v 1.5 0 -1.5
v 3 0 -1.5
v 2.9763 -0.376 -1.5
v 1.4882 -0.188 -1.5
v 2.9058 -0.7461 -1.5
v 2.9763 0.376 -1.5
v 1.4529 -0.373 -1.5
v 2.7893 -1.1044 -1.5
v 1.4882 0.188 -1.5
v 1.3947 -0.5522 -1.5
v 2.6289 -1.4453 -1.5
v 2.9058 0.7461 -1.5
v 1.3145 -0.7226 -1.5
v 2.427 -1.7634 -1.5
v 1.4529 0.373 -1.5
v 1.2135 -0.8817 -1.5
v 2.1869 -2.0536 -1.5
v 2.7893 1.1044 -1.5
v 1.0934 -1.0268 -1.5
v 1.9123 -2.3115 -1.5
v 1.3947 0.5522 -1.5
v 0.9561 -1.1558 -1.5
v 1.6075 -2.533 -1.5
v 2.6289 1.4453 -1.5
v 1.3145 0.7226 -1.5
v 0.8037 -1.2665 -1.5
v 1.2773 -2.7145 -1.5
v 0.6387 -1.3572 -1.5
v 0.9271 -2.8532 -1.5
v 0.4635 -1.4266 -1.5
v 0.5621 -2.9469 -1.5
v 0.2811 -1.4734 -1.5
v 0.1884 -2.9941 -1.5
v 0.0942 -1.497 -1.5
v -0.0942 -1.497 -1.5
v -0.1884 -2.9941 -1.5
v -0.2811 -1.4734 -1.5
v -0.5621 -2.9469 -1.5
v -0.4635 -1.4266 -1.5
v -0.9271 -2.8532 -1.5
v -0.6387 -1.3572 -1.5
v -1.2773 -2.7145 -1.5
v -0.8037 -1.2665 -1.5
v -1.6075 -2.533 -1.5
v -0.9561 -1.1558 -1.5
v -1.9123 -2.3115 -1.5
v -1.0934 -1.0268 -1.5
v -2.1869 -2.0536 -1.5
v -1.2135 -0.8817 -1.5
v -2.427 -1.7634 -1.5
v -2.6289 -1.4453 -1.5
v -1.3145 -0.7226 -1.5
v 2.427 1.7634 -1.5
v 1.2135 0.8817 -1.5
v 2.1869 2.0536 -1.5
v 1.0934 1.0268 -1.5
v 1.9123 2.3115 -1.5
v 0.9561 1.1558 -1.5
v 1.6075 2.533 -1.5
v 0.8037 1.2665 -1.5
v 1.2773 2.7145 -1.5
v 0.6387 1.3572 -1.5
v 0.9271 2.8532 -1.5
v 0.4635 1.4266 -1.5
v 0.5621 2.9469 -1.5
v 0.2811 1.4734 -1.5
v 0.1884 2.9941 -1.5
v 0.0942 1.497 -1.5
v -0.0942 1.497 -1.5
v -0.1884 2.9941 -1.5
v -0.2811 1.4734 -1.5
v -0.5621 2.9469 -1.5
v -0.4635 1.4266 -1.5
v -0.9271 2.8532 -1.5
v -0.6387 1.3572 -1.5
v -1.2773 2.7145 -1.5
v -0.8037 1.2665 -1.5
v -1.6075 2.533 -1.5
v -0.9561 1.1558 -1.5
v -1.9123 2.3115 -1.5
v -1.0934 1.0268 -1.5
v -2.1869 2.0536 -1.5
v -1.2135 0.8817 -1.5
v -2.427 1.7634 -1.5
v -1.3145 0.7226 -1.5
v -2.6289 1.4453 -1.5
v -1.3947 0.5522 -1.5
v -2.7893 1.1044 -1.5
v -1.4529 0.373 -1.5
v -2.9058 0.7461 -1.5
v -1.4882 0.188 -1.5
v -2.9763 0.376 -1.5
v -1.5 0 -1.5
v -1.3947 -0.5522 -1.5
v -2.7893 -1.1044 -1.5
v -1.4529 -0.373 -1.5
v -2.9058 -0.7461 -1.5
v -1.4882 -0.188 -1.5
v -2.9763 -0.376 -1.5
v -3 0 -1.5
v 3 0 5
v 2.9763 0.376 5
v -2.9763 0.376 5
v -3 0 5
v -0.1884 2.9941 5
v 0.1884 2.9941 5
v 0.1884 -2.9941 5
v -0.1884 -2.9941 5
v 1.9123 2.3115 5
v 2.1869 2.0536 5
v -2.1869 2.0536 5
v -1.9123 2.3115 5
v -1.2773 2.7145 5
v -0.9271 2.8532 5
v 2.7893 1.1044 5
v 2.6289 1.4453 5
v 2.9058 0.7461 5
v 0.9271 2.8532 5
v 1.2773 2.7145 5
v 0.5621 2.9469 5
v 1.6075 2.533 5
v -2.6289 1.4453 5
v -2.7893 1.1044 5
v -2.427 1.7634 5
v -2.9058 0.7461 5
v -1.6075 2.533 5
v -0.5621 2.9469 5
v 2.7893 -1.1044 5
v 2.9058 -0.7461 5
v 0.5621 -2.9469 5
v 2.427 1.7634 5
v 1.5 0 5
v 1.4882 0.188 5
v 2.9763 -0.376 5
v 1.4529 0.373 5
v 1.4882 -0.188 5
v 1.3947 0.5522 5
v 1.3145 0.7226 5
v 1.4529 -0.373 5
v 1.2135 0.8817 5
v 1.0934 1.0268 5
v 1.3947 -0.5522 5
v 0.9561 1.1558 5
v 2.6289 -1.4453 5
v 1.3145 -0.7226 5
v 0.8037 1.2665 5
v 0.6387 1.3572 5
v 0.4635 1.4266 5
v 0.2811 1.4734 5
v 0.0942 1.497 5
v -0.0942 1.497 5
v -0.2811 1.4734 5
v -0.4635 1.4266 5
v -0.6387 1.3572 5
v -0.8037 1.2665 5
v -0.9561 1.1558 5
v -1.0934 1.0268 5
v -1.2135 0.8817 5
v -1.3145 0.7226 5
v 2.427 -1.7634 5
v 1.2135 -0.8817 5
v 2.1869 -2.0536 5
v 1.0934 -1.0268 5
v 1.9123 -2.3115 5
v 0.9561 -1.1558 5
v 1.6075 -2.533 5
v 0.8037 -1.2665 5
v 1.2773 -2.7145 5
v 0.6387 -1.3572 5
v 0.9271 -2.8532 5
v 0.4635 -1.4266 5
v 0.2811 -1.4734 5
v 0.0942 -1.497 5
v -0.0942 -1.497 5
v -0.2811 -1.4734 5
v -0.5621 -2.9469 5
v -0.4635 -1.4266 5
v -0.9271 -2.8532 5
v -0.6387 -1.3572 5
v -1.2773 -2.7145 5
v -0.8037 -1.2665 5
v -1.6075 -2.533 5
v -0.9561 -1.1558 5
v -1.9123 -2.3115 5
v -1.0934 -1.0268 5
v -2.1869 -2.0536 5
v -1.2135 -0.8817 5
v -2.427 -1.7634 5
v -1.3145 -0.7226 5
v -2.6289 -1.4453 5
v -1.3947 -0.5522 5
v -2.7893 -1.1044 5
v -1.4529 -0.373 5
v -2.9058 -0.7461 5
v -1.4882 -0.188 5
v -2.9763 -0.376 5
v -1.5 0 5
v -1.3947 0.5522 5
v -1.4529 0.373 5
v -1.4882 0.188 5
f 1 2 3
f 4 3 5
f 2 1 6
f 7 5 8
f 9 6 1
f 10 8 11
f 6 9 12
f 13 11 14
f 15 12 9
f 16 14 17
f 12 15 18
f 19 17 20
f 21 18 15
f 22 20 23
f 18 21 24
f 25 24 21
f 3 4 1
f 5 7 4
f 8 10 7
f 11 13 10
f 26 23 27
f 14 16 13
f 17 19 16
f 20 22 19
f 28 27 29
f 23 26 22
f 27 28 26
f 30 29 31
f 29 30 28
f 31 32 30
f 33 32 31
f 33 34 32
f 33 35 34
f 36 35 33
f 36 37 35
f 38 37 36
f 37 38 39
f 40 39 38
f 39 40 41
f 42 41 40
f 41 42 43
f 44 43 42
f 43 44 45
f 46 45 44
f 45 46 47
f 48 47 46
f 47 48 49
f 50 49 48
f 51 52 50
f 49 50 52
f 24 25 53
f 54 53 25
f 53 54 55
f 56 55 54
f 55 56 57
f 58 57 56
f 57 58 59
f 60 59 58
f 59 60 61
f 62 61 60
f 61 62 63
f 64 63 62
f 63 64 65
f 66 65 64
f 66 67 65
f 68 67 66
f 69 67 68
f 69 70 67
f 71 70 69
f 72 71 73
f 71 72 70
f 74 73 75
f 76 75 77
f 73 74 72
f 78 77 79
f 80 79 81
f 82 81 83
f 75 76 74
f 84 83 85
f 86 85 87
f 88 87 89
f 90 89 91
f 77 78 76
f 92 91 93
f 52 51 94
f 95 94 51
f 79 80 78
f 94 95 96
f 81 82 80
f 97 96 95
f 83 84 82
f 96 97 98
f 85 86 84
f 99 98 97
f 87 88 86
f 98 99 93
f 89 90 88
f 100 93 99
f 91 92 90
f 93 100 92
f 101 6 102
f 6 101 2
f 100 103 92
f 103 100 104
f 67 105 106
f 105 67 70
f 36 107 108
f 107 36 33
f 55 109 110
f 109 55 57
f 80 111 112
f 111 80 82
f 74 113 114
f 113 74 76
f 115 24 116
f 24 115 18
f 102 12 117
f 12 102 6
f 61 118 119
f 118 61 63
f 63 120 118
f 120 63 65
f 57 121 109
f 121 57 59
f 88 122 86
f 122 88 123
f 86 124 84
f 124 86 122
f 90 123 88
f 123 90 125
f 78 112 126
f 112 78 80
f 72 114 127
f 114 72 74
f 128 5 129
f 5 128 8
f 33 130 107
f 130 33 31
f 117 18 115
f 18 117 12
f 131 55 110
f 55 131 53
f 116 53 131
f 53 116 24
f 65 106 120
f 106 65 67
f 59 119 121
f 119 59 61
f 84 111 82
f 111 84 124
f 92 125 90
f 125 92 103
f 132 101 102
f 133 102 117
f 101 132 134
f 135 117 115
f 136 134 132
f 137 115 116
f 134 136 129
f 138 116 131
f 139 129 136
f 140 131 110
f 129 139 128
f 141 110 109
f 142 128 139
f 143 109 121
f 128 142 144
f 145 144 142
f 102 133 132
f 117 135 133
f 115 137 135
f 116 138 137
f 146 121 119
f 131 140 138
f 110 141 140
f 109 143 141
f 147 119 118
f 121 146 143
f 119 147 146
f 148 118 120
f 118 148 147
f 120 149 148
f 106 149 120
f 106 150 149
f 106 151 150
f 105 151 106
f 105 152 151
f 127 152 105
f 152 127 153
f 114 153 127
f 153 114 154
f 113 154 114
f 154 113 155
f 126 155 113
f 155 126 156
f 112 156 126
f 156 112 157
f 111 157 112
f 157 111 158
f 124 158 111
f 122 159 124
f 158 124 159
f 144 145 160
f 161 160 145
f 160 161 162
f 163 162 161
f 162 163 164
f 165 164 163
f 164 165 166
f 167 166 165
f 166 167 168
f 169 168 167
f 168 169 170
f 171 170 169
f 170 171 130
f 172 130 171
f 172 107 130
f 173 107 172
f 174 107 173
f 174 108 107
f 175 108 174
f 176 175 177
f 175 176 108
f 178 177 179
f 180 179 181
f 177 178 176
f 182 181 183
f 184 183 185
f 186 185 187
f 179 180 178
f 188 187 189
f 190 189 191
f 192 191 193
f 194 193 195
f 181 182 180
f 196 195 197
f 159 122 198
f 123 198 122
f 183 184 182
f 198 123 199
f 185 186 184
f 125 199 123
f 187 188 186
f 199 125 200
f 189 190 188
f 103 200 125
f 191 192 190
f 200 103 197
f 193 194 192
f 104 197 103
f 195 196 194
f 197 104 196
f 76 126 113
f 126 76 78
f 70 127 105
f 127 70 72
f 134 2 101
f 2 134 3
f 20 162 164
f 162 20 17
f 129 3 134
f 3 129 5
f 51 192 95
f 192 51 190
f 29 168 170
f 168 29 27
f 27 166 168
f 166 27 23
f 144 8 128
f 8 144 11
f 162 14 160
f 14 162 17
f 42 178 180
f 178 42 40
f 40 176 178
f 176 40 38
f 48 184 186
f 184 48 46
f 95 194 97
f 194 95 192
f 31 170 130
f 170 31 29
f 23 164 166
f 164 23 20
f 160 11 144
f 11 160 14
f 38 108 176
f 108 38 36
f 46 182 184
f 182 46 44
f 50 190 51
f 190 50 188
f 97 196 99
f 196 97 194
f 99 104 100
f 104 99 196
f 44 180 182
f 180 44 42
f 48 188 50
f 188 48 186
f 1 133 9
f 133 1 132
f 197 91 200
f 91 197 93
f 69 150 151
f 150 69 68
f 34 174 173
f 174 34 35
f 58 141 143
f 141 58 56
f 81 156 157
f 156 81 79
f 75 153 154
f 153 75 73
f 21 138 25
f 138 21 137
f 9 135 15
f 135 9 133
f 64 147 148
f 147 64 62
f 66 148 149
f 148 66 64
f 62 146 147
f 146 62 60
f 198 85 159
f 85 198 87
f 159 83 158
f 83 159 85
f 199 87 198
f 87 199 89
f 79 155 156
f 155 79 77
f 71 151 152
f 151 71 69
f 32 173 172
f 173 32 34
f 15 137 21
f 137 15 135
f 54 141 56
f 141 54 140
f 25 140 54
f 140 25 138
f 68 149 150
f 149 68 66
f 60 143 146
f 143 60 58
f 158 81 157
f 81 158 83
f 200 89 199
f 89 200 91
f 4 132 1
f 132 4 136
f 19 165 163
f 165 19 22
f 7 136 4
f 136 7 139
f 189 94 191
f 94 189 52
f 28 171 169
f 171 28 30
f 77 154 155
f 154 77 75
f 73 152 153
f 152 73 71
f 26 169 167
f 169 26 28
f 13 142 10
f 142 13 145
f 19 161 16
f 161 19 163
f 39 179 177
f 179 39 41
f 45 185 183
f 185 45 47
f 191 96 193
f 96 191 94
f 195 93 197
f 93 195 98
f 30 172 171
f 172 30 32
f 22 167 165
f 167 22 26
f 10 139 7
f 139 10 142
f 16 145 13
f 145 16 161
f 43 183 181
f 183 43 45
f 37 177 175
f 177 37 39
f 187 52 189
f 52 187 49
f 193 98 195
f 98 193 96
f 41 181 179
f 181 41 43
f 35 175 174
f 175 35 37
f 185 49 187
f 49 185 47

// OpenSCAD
$fn = 50;


difference() {
	union() {
		translate(v = [0, 0, -1.5000000000]) {
			rotate(a = [0, 0, 0]) {
				cylinder(h = 3, r = 1.0000000000);
			}
		}
		translate(v = [0, 0, -1.5000000000]) {
			rotate(a = [0, 0, 0]) {
				cylinder(h = 6.5000000000, r = 3.0000000000);
			}
		}
	}
	union() {
		translate(v = [0, 0, -125.0000000000]) {
			rotate(a = [0, 0, 0]) {
				cylinder(h = 250, r = 1.5000000000);
			}
		}
	}
}
